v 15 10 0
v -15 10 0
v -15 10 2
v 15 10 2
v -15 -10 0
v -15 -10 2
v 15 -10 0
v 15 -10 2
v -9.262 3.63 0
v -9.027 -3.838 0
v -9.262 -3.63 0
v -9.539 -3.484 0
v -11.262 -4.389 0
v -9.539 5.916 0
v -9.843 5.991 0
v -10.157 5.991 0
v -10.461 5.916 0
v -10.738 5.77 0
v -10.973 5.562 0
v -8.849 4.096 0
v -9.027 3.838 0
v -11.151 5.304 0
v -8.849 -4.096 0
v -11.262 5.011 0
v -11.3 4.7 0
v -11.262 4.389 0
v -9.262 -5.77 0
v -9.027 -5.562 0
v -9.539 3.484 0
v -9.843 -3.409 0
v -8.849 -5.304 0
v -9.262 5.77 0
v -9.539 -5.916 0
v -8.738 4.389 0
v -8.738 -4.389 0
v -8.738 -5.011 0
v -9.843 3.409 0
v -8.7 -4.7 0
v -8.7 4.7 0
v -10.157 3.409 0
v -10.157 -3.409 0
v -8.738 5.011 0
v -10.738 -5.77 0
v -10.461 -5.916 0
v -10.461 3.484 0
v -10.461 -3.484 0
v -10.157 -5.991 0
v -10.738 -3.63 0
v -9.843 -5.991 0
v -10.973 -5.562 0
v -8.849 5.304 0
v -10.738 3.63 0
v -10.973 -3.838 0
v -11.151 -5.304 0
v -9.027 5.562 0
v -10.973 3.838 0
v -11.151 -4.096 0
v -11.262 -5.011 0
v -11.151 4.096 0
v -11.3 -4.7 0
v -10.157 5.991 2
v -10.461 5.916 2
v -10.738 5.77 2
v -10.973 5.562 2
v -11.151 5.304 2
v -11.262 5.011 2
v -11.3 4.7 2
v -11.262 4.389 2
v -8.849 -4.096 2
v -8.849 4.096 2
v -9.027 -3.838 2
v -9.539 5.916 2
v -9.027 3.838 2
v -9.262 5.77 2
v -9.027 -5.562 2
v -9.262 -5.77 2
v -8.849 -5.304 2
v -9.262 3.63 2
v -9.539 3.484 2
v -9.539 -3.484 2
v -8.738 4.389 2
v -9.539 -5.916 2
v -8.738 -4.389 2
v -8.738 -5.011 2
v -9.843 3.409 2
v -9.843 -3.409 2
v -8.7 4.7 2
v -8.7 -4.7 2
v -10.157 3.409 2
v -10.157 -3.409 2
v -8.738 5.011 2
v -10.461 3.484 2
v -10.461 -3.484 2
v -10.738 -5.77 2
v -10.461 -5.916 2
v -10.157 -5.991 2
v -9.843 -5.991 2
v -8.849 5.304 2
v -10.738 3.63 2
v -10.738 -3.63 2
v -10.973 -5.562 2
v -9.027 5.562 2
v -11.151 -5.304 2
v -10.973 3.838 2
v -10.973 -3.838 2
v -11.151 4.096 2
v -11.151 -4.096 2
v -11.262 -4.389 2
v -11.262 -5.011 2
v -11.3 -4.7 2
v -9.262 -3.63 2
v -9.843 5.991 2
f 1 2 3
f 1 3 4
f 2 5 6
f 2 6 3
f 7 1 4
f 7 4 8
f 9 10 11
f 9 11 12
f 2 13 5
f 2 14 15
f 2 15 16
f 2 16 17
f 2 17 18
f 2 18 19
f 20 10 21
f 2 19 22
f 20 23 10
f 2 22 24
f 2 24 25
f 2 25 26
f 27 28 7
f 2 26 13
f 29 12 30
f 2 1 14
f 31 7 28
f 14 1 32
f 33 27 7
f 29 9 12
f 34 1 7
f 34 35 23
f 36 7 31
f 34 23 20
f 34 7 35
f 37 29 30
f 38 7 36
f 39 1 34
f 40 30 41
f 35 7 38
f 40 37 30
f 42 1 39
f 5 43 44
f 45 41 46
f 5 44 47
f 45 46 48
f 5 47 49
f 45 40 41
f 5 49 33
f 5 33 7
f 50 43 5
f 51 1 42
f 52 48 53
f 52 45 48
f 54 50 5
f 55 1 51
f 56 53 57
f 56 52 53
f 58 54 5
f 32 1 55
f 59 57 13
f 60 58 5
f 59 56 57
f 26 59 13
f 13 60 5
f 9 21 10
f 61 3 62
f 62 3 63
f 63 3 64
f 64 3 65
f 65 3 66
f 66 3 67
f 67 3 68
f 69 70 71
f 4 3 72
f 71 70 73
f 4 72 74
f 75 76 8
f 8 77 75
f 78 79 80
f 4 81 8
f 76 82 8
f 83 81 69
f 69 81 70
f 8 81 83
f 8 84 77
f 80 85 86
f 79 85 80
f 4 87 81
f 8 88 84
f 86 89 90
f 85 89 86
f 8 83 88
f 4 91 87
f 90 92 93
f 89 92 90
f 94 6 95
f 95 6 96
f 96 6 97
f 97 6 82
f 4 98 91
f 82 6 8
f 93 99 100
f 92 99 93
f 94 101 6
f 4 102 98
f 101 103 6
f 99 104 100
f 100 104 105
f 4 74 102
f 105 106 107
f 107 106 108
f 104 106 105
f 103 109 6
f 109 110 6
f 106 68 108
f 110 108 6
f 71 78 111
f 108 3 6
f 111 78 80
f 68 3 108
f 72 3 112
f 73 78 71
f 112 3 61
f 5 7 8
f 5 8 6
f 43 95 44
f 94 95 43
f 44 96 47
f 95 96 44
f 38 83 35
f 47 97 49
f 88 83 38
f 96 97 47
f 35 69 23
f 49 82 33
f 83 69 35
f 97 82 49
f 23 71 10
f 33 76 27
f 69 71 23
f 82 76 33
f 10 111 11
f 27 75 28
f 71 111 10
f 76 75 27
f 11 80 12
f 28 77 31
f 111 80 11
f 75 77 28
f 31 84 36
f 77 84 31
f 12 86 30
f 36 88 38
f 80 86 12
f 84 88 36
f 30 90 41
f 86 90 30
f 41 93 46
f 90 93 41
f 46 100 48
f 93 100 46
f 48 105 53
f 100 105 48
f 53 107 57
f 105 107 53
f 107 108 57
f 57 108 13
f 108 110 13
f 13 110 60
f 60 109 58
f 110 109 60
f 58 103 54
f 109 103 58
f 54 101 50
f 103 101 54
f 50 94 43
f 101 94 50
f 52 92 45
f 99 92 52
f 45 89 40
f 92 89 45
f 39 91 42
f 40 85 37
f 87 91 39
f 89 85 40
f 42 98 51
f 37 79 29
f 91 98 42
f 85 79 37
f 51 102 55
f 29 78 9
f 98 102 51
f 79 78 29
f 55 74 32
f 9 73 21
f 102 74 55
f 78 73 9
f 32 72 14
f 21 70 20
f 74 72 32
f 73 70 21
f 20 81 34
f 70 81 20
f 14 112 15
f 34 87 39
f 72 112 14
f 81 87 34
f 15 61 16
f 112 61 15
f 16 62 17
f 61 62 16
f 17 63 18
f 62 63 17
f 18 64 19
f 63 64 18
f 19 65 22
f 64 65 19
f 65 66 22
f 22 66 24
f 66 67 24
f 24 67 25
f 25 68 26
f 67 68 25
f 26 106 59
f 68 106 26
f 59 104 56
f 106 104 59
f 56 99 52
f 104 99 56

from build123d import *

# Parameters (mm, degrees)
SKETCH_W        = 30
SKETCH_H        = 20
PAD_DEPTH       = 2
SKETCH001_R     = 1.3
POCKET_DEPTH    = 5
POCKET001_DEPTH = 5


with BuildPart() as part:
    # Sketch → Pad (new body)
    with BuildSketch(Plane.XY):
        Rectangle(SKETCH_W, SKETCH_H)
    extrude(amount=PAD_DEPTH)

    # Sketch001 (on Face6 of Pad) → Pocket (cut)
    with BuildSketch(Plane.XY.offset(2)):
        with Locations((-10, 4.7)):
            Circle(SKETCH001_R)
        with Locations((-10, -4.7)):
            Circle(SKETCH001_R)
    extrude(amount=-POCKET_DEPTH, mode=Mode.SUBTRACT)

    # Sketch001 (on Face6 of Pad) → Pocket001 (cut)
    with BuildSketch(Plane.XY.offset(2)):
        with Locations((-10, 4.7)):
            Circle(SKETCH001_R)
        with Locations((-10, -4.7)):
            Circle(SKETCH001_R)
    extrude(amount=-POCKET001_DEPTH, mode=Mode.SUBTRACT)


solid = part.part
